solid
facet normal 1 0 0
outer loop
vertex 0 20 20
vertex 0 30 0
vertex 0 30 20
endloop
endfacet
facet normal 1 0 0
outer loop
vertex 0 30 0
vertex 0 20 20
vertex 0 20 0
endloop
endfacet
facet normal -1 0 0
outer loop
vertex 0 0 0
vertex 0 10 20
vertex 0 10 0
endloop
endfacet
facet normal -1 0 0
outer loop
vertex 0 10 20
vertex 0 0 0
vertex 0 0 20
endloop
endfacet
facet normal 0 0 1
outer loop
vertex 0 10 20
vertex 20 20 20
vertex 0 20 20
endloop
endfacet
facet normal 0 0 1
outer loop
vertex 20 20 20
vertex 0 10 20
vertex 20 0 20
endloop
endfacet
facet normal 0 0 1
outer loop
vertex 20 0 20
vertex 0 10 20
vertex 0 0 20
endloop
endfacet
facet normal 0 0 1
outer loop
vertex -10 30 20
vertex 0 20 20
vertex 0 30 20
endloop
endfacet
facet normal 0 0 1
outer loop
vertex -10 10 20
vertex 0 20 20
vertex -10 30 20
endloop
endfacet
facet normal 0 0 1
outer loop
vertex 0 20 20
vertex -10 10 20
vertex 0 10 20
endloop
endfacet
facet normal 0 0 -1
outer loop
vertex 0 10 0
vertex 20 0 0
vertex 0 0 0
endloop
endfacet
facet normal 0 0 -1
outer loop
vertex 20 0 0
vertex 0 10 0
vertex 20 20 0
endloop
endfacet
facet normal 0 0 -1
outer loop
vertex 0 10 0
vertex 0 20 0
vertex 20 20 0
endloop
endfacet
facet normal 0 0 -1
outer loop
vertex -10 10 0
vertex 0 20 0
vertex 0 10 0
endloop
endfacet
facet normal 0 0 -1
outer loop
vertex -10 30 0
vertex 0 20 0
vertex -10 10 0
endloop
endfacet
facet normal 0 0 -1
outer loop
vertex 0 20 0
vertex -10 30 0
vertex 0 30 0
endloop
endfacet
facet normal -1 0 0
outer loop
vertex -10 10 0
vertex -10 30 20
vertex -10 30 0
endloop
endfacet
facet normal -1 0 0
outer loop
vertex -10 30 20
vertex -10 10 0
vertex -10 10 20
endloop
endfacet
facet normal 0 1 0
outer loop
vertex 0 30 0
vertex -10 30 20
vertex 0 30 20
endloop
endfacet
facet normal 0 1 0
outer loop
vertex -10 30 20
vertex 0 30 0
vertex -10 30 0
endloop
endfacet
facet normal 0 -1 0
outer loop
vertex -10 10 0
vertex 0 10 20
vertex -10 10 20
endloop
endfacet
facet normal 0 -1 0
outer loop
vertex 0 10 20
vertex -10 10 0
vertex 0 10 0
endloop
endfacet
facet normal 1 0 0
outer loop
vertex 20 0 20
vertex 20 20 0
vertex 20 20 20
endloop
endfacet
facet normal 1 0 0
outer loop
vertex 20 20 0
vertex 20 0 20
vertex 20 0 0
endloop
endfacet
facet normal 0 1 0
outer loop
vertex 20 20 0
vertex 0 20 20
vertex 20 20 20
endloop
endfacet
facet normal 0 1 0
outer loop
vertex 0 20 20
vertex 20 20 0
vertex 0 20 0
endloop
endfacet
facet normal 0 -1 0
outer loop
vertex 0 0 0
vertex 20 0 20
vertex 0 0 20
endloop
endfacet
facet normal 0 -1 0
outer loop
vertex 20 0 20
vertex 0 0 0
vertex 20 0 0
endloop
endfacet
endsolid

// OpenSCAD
size = 10;
union() {
    translate([-size,size,0]) cube([size,2*size,2*size]);
    cube([2*size,2*size,2*size]);
}
    
